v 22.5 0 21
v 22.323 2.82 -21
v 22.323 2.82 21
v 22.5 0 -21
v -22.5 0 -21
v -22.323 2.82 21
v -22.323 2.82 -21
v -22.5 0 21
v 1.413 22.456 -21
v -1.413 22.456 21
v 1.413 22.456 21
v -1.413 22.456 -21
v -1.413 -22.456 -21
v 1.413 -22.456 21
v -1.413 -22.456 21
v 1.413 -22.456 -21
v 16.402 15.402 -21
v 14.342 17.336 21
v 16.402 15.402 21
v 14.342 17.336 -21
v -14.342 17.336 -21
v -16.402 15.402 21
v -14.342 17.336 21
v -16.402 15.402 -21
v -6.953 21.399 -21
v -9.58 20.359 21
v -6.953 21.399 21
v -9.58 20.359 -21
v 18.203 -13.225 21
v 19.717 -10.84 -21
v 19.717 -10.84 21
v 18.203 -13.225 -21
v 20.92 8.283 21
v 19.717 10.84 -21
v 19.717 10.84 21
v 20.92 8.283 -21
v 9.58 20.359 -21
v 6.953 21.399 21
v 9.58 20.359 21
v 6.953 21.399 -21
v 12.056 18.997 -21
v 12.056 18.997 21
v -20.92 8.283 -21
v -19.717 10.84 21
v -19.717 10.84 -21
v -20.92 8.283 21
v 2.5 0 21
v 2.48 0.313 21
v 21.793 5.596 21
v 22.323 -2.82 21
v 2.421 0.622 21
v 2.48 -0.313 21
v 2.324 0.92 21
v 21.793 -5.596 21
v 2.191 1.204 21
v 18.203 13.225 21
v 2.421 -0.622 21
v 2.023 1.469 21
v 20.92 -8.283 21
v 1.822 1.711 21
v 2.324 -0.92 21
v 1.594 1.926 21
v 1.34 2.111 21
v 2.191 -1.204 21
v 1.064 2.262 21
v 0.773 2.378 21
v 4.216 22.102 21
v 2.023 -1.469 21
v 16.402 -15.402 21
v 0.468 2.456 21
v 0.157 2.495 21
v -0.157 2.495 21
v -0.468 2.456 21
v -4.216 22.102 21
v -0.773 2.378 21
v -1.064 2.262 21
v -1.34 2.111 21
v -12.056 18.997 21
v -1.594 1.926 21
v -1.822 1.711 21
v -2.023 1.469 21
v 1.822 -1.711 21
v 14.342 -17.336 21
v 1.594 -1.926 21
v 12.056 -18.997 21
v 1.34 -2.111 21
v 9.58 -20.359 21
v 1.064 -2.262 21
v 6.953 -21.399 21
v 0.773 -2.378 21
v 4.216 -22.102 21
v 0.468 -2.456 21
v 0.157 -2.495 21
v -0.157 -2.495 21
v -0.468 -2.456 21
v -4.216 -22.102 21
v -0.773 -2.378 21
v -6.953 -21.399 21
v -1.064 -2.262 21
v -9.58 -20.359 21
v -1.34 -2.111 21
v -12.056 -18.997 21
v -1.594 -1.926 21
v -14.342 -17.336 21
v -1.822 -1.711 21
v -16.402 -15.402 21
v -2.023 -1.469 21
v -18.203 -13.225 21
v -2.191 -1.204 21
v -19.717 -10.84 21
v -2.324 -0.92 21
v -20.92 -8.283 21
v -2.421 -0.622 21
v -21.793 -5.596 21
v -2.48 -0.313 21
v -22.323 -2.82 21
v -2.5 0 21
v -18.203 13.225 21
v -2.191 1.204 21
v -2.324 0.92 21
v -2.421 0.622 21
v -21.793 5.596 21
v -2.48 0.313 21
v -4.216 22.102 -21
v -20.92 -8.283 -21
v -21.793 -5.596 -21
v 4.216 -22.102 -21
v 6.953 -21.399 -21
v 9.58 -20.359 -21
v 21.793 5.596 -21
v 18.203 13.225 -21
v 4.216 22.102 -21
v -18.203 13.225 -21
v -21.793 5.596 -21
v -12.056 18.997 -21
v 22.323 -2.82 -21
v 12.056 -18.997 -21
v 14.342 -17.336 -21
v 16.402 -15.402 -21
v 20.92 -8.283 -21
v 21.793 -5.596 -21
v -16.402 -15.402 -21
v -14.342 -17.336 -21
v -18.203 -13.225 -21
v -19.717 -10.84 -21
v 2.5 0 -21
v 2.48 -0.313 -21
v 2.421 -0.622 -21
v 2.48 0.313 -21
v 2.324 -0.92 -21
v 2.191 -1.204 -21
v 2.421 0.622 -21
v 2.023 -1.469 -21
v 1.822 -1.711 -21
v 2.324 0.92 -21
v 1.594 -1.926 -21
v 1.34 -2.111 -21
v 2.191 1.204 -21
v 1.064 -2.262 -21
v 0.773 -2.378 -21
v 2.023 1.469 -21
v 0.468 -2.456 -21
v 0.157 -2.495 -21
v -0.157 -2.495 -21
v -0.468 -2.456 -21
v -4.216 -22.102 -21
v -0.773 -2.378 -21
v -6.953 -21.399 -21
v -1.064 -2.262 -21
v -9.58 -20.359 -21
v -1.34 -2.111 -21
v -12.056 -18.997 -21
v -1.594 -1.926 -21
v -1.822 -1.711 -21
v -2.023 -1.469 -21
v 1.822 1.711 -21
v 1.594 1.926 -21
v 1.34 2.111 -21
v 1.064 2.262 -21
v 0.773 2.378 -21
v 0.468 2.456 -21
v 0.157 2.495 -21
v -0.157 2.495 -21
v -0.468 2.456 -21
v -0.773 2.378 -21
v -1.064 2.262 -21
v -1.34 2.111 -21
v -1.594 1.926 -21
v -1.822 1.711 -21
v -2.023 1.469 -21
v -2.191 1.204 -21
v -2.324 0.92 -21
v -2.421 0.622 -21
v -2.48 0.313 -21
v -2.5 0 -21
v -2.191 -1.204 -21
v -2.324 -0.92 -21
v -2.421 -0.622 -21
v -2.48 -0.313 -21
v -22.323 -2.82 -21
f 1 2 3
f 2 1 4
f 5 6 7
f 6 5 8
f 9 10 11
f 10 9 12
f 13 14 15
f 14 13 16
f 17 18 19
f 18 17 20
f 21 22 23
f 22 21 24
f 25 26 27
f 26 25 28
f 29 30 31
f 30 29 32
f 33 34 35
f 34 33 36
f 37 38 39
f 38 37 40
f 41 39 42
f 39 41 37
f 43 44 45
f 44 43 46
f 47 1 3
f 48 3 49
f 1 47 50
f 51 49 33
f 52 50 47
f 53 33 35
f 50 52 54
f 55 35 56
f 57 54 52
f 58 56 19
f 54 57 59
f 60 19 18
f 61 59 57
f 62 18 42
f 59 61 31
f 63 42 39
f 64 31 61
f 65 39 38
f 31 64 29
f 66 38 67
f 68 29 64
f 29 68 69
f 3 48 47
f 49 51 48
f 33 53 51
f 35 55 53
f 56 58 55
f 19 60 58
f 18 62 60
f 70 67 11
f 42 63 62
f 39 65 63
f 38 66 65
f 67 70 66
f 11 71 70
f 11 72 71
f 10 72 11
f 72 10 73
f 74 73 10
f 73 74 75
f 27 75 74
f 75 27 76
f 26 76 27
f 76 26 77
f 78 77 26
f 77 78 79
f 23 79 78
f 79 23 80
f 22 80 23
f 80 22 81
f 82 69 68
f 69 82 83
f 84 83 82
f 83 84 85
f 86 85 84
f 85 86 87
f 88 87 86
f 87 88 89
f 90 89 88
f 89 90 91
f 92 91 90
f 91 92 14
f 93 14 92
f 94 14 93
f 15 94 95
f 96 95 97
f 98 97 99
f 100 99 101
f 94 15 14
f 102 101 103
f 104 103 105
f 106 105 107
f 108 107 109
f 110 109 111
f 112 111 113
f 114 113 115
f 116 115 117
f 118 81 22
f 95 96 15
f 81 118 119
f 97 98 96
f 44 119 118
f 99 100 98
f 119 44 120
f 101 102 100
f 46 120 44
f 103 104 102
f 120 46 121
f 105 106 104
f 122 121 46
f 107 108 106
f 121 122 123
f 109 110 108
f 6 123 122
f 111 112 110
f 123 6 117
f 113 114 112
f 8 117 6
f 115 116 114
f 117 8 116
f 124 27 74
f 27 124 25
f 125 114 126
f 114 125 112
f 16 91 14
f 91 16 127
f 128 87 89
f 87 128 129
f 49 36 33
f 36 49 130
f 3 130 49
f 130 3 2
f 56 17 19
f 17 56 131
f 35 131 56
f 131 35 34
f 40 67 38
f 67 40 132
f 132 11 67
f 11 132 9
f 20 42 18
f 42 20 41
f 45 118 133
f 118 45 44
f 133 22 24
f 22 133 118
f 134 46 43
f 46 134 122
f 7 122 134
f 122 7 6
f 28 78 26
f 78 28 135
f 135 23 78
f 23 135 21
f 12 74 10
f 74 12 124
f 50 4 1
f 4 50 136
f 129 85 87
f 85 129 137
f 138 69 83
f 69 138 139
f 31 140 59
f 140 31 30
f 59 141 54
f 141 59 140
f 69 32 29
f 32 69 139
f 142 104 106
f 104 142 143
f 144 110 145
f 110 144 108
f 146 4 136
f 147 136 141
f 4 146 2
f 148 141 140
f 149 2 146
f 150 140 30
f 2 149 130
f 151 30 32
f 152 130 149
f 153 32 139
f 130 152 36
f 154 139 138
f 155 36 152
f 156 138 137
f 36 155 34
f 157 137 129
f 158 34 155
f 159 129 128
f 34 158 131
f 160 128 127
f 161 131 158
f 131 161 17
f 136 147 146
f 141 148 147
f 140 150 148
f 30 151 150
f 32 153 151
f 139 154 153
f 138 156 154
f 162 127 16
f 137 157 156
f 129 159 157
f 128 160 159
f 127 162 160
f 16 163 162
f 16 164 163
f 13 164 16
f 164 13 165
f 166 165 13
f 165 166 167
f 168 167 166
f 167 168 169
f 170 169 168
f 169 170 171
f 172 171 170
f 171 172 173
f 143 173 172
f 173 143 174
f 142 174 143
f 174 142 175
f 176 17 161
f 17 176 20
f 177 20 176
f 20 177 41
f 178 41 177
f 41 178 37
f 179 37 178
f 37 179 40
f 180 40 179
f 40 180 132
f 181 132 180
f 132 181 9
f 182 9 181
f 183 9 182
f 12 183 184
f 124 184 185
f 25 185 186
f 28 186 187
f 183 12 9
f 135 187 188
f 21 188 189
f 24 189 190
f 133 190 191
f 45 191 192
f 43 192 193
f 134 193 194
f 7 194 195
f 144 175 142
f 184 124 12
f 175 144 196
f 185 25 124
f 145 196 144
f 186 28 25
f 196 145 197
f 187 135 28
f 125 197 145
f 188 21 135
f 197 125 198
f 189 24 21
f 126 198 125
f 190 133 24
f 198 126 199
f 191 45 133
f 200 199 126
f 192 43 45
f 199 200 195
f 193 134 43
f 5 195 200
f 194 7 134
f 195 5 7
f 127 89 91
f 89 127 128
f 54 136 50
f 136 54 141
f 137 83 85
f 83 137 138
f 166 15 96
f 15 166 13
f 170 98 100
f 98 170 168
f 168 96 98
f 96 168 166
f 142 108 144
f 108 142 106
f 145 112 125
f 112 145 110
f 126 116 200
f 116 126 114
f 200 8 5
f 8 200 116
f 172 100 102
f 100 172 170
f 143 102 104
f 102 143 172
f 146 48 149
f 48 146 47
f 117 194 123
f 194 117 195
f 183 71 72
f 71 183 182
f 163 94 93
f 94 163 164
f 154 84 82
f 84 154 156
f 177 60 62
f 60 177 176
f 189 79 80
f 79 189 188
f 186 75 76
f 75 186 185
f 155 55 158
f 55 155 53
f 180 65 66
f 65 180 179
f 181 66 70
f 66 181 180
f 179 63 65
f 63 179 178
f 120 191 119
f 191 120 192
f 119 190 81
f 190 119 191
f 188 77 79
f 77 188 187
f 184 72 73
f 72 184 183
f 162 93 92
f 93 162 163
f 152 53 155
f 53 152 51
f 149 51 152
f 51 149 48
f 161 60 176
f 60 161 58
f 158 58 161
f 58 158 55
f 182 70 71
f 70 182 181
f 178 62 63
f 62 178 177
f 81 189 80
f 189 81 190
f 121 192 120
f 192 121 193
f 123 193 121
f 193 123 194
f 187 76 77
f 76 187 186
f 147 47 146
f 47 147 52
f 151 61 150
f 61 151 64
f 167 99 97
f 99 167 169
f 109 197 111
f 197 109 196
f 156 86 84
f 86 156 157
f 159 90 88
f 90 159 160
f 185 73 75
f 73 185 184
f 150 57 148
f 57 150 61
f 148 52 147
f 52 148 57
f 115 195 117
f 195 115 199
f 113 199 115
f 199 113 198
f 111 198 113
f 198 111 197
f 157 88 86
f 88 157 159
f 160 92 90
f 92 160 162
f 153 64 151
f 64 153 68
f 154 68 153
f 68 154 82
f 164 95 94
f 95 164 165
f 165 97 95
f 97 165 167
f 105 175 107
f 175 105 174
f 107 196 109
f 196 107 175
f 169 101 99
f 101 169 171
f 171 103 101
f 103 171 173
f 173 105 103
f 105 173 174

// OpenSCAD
$fn = 50;


difference() {
	union() {
		translate(v = [0, 0, -21.0000000000]) {
			cylinder(h = 42, r = 22.5000000000);
		}
	}
	union() {
		translate(v = [0, 0, -100.0000000000]) {
			cylinder(h = 200, r = 2.5000000000);
		}
	}
}
